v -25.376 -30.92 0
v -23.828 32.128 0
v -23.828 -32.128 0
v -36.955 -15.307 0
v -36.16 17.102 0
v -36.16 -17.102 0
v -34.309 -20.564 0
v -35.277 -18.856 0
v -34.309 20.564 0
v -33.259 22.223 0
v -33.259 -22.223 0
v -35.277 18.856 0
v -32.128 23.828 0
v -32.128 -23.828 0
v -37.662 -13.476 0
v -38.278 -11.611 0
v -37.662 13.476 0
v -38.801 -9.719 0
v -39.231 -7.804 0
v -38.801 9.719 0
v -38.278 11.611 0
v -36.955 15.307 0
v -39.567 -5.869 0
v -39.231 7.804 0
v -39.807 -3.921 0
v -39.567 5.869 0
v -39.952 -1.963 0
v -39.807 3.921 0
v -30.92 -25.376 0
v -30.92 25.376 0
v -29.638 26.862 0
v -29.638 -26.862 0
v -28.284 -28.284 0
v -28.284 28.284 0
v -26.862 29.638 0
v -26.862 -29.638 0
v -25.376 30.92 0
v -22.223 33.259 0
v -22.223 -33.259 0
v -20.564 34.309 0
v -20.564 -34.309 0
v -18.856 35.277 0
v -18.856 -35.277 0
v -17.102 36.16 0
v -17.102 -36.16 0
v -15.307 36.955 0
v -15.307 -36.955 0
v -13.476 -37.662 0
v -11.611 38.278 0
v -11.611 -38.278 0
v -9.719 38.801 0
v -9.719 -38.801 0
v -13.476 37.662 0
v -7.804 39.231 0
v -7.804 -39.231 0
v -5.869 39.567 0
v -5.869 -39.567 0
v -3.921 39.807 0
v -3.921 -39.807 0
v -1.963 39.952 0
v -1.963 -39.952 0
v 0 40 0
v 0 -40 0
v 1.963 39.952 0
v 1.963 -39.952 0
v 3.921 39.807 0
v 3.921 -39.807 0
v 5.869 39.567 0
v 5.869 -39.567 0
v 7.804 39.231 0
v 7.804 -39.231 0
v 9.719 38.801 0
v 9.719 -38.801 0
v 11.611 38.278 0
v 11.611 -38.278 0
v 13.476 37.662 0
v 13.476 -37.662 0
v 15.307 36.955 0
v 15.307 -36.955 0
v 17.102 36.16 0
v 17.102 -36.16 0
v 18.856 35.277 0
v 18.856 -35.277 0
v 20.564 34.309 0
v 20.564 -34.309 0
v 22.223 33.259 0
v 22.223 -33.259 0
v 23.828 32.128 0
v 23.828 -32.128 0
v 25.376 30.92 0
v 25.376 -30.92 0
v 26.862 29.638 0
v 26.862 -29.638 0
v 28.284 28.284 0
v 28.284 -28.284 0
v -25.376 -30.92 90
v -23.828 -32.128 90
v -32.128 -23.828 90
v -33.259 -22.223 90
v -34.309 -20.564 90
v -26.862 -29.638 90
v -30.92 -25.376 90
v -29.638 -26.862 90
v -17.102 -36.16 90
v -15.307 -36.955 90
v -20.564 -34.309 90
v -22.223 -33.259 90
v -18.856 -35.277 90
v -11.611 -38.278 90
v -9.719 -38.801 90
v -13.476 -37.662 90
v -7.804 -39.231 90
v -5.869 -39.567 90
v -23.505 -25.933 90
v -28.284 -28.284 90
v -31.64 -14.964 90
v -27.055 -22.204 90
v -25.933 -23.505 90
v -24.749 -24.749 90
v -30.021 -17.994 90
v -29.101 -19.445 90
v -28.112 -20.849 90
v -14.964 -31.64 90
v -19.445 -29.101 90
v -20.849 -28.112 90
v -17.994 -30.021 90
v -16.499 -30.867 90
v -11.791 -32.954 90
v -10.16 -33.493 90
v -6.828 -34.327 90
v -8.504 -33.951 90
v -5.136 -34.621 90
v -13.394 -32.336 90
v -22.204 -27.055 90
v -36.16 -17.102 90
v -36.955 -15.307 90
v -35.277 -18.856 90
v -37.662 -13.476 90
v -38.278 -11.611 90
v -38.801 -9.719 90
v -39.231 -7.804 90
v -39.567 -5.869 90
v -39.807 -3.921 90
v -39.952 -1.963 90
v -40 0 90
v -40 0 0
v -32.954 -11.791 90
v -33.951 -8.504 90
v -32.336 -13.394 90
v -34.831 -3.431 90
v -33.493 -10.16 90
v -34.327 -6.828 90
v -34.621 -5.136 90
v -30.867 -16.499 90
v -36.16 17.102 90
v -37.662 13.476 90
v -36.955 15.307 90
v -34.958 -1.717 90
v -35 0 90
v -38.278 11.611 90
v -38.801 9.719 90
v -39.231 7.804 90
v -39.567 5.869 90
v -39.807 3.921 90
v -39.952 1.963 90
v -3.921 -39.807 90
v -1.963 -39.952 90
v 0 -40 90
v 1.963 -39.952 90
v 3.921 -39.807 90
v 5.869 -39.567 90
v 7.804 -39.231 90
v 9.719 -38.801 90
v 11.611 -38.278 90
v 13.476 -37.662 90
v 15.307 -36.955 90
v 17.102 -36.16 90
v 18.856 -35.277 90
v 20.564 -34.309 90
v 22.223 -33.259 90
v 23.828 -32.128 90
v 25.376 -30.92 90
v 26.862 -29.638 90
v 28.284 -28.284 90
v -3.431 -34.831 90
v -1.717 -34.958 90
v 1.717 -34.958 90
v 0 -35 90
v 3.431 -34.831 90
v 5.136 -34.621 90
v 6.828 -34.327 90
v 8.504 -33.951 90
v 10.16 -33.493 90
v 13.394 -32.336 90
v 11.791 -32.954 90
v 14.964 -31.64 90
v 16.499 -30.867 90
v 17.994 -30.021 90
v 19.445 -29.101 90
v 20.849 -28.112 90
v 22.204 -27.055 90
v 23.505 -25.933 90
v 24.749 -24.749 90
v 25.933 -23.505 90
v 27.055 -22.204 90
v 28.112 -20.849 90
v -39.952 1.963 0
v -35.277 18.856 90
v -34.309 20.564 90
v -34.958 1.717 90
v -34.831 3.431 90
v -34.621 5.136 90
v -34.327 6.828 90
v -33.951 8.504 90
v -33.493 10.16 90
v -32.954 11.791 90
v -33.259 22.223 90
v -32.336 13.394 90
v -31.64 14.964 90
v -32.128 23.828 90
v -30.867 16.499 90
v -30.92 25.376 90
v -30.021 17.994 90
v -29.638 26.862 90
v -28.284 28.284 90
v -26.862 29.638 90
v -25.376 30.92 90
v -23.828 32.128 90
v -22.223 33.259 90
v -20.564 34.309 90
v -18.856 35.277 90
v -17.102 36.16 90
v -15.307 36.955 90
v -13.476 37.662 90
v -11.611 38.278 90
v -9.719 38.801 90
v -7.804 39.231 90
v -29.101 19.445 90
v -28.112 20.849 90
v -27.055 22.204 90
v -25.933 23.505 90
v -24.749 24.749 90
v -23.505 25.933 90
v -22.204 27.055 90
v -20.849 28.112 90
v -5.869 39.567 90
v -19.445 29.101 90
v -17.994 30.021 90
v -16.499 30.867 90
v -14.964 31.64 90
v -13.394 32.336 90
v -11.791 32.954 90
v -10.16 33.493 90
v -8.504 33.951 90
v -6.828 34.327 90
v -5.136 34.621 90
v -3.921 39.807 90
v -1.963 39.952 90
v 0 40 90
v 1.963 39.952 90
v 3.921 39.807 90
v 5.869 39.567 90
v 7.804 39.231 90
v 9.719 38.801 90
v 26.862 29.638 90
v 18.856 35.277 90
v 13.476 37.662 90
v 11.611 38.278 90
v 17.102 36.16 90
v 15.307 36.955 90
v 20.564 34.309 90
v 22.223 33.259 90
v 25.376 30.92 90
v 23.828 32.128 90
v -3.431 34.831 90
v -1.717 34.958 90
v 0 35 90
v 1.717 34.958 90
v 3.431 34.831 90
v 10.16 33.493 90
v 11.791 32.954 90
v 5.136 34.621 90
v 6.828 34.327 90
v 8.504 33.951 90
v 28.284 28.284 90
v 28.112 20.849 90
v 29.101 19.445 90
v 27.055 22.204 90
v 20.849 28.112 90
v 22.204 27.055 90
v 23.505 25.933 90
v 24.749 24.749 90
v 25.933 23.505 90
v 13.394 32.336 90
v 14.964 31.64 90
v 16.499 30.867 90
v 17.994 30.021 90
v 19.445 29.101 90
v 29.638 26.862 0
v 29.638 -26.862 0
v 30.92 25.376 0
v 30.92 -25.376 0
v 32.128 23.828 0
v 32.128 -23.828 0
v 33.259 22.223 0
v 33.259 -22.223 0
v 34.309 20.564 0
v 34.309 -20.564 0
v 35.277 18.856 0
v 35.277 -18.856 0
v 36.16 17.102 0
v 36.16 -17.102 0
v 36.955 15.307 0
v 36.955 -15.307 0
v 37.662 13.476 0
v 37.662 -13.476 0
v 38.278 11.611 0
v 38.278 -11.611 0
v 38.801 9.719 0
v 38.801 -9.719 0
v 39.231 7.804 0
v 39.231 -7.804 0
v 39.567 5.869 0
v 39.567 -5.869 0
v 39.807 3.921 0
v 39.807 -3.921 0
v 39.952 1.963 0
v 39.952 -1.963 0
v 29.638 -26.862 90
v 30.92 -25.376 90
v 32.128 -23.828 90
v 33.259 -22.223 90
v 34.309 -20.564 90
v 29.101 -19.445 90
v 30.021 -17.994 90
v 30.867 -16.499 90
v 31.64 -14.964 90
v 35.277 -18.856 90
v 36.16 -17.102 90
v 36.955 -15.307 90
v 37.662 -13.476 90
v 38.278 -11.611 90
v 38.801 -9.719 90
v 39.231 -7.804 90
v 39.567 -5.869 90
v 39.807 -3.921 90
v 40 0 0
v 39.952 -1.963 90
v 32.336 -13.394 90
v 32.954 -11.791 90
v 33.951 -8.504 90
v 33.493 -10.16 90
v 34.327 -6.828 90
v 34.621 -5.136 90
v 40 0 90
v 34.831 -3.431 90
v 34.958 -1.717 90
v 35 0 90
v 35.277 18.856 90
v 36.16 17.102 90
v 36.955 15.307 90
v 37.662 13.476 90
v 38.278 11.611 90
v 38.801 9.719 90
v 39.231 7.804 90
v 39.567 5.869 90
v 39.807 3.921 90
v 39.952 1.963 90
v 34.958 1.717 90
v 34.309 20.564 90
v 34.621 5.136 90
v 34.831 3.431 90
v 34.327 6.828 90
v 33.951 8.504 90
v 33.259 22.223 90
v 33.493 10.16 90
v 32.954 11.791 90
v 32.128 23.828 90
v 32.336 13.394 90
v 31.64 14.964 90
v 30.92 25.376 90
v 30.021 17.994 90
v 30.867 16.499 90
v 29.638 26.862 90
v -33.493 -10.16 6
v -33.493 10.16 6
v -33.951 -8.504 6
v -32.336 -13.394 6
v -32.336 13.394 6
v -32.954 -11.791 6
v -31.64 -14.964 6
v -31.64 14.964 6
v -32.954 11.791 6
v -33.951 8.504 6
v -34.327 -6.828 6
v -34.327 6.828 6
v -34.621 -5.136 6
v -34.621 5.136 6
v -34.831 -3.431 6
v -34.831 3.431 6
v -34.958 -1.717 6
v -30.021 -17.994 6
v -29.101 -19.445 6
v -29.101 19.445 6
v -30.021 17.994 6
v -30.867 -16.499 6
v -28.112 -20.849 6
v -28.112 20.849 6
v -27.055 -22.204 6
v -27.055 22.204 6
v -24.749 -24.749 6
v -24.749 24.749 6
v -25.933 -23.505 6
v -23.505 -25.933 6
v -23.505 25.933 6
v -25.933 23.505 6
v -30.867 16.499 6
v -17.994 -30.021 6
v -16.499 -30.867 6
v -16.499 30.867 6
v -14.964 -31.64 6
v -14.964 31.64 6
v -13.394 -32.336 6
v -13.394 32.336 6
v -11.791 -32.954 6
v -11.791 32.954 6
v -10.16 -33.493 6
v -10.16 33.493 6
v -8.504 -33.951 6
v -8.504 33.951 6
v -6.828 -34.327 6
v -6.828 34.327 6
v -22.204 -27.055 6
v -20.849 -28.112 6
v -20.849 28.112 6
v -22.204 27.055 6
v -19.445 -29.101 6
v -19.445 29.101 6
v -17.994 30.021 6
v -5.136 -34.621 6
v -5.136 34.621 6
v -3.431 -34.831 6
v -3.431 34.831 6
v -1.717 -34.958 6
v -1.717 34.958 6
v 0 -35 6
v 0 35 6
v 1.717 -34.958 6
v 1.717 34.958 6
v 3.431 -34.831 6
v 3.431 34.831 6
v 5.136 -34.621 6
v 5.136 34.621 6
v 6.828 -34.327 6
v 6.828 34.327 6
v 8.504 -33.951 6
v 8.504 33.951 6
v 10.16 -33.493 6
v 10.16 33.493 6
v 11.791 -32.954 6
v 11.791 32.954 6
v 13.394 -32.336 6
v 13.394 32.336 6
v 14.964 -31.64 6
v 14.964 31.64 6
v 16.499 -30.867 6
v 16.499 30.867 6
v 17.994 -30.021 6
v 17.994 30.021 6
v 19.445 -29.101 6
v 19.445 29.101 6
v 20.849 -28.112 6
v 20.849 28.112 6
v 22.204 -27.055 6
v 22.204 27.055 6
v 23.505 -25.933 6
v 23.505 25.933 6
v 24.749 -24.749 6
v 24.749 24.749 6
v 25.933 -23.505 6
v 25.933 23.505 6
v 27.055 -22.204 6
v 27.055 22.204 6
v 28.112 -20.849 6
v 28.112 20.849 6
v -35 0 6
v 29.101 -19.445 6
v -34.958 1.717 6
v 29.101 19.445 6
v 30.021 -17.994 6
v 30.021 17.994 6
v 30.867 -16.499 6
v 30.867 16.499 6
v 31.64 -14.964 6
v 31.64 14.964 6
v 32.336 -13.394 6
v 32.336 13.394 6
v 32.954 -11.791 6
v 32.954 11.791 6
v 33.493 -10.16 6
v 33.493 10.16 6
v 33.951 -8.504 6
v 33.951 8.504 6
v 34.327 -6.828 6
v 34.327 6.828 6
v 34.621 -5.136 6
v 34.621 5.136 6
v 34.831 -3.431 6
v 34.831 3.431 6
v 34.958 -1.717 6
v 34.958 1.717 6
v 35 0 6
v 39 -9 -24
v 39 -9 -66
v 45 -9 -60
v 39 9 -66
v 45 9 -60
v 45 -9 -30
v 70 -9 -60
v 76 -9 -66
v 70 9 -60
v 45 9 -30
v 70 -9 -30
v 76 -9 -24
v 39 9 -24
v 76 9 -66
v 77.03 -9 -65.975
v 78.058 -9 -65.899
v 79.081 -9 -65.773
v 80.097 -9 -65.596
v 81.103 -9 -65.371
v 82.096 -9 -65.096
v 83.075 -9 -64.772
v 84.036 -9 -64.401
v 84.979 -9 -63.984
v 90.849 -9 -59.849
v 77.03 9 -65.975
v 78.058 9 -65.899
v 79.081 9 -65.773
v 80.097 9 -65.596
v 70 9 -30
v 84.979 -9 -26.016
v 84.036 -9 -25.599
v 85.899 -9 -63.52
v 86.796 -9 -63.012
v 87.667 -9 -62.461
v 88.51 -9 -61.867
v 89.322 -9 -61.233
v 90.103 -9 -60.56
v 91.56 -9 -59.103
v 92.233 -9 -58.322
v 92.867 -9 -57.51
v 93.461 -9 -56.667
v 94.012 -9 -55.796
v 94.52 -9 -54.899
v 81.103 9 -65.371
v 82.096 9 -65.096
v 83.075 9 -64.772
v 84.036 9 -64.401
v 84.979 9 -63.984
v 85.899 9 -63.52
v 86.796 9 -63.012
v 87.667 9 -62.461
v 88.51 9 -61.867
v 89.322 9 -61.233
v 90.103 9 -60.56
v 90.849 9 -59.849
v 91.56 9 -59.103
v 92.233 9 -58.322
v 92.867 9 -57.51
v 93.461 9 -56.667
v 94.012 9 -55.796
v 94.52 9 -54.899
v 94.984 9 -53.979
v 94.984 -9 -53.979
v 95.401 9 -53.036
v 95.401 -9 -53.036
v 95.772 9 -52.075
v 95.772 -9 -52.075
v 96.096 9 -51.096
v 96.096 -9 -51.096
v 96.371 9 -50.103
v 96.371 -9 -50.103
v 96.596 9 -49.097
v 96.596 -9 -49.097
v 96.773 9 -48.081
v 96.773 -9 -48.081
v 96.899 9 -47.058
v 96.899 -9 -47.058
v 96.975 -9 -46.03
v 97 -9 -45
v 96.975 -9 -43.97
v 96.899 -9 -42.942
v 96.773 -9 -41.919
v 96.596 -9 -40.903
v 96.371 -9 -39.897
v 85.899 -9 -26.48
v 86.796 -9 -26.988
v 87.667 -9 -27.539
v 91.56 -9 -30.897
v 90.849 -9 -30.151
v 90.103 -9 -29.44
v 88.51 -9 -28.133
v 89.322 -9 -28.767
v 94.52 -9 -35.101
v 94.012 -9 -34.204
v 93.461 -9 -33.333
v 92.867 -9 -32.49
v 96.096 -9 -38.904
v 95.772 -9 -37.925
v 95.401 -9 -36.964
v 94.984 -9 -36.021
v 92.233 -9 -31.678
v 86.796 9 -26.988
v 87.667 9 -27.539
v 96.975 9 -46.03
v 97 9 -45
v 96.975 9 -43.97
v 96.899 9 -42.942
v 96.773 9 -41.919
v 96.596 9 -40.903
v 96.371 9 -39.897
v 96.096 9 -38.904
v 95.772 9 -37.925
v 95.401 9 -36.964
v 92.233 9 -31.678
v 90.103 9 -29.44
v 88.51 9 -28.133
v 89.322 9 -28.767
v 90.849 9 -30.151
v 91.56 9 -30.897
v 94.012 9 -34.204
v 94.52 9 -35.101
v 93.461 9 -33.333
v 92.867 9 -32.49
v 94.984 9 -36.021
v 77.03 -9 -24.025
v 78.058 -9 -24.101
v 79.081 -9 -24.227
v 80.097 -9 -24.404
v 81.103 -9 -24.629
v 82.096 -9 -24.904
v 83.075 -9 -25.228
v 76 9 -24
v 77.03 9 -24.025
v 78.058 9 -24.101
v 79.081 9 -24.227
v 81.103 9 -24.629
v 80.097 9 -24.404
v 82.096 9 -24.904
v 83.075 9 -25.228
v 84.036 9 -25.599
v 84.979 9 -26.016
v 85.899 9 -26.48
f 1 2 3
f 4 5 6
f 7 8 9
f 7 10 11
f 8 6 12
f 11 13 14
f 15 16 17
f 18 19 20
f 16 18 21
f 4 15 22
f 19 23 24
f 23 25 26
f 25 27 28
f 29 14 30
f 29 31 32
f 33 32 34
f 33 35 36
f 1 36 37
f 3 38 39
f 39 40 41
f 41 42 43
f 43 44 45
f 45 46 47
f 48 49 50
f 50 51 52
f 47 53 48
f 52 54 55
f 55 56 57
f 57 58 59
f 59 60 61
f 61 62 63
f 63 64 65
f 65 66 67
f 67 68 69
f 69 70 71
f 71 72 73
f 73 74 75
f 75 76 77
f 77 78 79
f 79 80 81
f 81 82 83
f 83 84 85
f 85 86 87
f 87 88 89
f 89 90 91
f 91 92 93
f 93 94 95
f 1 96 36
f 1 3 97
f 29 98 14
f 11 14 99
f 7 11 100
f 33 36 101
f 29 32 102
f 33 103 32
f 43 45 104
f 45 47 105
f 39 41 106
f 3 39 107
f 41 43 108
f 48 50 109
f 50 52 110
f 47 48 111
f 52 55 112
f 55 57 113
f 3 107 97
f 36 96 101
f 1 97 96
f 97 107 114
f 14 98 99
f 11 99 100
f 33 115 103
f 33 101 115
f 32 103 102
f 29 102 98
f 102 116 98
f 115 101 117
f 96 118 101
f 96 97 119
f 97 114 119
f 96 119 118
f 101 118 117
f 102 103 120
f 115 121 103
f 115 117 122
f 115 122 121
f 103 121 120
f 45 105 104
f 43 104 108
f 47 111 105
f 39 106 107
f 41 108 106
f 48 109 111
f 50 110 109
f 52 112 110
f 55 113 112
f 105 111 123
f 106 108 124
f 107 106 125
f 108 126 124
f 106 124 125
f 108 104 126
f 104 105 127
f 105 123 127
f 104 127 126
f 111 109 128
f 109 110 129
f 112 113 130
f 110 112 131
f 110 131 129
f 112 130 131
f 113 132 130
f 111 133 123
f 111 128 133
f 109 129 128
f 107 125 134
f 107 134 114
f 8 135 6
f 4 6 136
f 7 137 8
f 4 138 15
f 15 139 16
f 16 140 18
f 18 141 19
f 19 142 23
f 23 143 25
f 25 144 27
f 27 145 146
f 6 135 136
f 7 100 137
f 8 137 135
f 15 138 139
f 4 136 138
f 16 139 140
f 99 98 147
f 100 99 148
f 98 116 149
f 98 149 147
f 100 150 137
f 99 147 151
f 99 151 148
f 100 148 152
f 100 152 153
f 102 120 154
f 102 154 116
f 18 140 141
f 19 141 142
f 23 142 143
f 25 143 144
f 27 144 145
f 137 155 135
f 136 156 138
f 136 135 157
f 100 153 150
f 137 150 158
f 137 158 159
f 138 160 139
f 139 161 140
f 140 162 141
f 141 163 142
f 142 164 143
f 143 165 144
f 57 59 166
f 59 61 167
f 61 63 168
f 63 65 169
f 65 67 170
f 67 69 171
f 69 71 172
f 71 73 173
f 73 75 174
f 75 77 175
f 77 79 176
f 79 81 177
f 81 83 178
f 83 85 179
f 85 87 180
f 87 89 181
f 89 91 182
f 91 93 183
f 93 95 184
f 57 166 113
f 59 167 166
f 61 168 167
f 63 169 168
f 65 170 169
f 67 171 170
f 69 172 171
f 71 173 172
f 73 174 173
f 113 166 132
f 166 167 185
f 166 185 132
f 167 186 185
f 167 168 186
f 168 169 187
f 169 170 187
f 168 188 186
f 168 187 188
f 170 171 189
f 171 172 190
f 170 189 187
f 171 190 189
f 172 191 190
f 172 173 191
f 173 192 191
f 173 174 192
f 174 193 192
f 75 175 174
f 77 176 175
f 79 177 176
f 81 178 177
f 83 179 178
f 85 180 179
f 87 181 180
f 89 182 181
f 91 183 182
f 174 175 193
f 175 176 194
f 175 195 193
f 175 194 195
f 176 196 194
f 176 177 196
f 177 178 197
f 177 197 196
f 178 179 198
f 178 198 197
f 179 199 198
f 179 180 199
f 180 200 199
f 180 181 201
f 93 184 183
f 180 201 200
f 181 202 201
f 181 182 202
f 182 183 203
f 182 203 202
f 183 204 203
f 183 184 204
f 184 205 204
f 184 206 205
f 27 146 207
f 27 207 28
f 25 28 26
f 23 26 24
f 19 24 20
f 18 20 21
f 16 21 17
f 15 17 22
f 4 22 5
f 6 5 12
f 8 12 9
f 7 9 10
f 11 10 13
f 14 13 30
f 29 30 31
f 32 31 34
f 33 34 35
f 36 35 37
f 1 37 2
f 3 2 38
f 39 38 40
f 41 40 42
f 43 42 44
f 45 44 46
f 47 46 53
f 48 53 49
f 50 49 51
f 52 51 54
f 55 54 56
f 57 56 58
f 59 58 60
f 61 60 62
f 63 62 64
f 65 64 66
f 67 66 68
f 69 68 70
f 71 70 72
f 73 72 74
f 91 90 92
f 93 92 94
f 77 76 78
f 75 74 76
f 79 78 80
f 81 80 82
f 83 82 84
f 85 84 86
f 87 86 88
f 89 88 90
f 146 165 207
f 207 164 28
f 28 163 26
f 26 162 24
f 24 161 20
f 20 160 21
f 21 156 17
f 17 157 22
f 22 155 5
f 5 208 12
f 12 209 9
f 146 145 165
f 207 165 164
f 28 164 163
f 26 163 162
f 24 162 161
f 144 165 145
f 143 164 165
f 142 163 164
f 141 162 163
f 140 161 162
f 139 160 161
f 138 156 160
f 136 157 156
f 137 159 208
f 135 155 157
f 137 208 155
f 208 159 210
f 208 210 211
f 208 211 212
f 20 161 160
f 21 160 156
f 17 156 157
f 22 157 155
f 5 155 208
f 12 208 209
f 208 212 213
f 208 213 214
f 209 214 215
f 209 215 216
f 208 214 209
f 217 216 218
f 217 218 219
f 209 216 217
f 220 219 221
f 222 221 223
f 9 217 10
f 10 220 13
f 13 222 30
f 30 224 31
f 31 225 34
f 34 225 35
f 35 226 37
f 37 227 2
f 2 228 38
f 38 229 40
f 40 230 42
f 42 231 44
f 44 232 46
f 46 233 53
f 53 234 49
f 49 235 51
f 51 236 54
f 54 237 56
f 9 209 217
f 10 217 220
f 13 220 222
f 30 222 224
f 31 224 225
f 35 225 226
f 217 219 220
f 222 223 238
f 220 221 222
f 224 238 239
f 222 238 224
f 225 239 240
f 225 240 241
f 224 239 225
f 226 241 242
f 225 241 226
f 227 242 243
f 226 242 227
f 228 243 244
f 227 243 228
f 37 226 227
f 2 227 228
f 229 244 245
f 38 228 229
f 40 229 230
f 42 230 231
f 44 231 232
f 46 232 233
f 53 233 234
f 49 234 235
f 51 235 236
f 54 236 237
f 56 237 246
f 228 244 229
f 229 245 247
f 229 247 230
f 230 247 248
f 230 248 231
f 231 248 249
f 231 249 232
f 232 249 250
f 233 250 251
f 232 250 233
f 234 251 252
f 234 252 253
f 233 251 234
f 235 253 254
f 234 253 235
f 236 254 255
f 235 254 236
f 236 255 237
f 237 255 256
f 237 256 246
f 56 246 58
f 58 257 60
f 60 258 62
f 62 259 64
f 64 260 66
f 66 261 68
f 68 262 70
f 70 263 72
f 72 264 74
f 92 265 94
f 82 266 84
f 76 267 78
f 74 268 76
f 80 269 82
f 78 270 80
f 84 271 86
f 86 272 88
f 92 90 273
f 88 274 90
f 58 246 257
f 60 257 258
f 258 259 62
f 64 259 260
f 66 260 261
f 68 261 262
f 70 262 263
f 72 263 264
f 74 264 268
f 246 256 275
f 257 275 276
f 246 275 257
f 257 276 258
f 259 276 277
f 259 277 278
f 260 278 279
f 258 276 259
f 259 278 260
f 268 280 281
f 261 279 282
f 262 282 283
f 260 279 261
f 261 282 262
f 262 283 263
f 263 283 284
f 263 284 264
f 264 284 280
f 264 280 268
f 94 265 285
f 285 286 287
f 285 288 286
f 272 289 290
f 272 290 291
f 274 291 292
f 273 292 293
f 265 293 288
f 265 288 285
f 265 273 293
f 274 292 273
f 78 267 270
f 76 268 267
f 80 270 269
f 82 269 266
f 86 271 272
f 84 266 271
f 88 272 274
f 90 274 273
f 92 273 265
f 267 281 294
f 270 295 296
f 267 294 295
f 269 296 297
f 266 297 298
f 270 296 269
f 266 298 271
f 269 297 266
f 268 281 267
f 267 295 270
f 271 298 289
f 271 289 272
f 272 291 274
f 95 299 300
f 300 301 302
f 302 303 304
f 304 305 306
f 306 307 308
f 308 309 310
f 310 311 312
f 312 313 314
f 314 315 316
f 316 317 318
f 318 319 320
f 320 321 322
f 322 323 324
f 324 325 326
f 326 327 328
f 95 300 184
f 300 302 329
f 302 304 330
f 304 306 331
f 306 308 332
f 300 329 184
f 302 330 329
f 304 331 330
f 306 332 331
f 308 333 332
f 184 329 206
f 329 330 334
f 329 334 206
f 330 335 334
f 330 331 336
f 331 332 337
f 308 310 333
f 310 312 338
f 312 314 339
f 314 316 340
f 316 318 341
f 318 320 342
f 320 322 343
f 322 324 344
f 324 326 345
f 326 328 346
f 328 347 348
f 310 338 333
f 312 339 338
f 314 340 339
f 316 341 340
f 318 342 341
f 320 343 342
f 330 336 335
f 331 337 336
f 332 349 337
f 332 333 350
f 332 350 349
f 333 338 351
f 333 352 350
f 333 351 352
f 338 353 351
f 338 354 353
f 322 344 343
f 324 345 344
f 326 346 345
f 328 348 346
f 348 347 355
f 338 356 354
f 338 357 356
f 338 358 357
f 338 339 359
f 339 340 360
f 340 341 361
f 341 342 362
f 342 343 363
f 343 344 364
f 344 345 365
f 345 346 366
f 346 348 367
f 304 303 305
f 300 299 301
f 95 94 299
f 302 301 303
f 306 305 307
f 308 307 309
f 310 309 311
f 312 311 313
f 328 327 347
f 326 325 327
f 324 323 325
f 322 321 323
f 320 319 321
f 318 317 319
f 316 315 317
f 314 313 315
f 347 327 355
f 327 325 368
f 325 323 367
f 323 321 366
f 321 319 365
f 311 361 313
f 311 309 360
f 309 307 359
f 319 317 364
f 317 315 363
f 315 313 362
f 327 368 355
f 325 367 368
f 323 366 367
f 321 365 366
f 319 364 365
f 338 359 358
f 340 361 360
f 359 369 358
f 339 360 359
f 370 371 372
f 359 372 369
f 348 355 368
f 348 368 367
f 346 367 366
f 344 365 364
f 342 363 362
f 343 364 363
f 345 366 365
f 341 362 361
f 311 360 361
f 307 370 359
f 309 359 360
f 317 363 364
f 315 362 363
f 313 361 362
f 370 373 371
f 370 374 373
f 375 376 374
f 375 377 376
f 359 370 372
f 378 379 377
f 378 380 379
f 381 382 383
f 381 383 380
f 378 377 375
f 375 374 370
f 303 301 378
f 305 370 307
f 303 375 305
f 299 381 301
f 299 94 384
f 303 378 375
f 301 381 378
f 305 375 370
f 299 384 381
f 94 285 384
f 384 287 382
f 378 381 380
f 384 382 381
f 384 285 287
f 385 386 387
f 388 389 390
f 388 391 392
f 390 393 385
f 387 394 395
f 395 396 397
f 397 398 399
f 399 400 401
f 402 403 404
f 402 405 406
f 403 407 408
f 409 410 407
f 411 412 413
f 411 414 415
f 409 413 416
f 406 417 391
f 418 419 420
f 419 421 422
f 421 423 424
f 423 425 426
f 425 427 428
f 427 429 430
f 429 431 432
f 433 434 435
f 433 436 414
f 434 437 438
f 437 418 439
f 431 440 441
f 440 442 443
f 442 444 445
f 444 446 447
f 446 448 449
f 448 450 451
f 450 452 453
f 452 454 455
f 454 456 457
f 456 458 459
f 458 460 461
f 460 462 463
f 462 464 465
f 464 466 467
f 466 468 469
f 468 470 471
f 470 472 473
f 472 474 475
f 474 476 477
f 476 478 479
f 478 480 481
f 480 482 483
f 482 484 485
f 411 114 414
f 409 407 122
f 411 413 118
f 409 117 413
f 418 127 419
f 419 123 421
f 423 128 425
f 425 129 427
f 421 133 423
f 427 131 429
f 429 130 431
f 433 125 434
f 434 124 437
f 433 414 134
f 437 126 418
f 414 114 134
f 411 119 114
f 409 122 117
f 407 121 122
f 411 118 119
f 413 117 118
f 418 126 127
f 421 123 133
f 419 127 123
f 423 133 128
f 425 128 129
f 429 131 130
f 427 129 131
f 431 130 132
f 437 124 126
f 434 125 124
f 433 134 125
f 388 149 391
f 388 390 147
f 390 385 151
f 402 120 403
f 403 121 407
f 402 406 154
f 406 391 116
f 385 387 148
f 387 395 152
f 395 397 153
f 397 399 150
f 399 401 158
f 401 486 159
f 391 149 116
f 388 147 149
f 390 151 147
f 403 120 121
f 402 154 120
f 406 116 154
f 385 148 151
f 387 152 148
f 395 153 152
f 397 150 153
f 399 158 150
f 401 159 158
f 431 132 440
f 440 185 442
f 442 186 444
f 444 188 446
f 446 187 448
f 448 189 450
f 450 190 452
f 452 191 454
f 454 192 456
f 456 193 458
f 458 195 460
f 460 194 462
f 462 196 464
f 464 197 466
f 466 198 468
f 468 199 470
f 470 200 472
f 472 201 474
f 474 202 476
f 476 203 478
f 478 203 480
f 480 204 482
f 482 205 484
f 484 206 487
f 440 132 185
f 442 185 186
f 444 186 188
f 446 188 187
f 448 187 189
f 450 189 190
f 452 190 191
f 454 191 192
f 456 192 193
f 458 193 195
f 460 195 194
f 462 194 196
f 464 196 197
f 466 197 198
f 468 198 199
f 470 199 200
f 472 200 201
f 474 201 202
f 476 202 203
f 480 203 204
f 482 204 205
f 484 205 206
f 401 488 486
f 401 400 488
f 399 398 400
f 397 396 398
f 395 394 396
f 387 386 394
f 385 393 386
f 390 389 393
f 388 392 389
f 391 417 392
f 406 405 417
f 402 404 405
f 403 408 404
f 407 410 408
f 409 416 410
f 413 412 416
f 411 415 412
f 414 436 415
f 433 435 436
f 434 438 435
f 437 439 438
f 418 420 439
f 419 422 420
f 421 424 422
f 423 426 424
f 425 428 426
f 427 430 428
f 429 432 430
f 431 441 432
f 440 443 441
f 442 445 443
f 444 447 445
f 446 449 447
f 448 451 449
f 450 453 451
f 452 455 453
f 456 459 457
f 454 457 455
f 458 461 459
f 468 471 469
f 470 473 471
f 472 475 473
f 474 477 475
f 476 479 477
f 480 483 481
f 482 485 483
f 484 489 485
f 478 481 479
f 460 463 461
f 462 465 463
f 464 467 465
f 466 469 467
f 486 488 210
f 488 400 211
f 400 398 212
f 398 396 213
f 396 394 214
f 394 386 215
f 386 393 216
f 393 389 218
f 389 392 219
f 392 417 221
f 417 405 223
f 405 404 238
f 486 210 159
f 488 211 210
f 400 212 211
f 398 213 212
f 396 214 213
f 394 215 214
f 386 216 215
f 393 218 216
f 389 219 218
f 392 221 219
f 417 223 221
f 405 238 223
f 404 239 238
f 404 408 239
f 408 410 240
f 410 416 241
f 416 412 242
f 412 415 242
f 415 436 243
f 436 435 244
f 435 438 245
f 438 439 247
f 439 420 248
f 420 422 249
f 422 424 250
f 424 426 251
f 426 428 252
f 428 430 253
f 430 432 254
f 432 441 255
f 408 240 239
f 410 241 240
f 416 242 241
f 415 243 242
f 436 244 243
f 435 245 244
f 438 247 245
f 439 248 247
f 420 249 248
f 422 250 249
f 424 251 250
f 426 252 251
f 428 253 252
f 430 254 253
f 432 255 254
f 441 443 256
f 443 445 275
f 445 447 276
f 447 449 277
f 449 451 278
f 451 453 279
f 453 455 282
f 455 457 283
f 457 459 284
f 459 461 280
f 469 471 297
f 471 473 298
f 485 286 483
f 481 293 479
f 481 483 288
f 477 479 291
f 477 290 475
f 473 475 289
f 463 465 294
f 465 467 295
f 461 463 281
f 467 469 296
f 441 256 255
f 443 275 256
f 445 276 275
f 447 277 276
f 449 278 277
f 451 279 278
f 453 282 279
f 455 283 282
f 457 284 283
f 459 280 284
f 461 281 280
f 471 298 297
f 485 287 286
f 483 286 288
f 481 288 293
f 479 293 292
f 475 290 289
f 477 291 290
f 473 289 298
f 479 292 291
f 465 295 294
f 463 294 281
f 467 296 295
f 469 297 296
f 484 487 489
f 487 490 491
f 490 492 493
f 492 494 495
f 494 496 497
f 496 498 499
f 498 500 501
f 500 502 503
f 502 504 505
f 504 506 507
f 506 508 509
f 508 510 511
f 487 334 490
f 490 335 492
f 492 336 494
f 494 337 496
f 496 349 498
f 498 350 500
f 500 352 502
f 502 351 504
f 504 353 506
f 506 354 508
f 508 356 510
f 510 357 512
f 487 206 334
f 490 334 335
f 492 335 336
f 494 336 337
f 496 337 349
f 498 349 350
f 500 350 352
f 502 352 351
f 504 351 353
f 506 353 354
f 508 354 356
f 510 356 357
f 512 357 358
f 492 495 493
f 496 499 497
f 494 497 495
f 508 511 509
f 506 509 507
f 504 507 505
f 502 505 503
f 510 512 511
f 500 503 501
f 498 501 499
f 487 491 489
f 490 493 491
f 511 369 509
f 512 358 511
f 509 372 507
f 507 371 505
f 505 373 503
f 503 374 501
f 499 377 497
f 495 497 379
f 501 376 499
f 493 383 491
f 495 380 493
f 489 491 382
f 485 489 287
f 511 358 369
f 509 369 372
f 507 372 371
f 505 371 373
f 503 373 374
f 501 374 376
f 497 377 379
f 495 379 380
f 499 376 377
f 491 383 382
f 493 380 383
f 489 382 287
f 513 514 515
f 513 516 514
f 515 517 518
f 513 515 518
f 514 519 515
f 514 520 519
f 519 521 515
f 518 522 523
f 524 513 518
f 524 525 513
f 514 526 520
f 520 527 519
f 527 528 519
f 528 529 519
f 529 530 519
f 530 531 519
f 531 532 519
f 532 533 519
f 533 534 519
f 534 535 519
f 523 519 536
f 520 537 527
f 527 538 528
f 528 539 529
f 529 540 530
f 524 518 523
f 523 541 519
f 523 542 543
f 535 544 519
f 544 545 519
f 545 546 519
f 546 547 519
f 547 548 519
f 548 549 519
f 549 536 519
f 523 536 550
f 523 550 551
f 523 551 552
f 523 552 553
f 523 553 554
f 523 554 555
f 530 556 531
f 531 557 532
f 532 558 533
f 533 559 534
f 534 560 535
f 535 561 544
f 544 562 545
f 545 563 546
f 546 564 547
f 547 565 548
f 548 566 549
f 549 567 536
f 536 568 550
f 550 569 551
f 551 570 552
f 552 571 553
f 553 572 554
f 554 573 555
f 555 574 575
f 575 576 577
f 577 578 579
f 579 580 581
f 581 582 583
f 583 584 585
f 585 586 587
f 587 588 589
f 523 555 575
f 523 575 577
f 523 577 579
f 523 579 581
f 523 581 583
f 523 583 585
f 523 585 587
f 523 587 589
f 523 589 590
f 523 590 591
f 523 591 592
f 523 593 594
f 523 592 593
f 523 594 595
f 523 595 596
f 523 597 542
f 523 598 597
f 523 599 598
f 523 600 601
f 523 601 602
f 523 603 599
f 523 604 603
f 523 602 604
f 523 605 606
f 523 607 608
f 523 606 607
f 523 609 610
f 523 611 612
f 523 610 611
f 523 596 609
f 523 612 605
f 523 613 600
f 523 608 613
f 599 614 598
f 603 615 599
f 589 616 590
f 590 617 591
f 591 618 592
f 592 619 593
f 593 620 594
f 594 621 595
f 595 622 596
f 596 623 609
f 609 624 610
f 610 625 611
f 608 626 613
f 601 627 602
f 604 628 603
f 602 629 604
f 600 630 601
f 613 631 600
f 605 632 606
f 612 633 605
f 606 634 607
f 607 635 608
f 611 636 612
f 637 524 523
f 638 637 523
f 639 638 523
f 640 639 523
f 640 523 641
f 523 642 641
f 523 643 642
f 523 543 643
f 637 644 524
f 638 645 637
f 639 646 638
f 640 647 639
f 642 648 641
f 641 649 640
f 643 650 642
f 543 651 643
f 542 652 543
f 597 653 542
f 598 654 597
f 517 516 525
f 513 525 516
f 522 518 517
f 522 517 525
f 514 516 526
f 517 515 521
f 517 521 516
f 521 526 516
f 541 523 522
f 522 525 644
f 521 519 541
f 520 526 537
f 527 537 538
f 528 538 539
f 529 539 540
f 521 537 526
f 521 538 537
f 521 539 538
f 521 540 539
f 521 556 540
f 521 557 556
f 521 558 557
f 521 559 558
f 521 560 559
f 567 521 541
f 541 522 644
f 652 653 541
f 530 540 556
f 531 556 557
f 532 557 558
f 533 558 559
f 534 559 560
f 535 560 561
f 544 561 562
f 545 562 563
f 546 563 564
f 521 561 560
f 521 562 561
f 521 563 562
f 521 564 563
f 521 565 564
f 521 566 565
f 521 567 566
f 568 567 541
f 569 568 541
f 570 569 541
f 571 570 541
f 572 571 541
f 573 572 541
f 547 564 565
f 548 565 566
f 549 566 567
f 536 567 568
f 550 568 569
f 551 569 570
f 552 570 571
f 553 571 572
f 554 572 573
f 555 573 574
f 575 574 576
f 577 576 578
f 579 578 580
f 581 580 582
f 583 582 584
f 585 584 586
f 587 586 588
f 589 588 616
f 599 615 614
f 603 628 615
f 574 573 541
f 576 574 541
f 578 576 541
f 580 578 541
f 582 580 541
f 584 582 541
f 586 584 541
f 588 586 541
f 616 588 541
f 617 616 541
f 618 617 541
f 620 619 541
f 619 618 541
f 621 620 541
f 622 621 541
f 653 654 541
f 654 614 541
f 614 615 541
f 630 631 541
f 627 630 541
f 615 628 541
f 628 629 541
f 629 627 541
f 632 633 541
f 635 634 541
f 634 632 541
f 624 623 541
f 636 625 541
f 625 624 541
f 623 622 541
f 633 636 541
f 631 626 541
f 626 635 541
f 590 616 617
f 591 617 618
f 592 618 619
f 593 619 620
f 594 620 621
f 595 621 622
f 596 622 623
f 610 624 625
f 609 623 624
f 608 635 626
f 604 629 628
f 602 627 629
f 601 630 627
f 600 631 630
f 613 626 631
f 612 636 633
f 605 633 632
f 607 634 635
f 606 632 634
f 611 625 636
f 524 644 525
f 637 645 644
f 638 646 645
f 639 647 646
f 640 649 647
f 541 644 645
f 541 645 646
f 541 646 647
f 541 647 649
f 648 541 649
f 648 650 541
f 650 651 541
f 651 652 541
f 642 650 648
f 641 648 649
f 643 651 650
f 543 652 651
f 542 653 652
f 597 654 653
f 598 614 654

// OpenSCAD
// Parameters
$fn = 128;

// Mug dimensions
R_outer = 40;      // Outer radius (80mm diameter)
R_inner = 35;      // Inner radius (70mm diameter)
H = 90;            // Height
B = 6;             // Bottom thickness

// Handle parameters
t = 6;             // Handle wall thickness around inner void
inner_w = 25;      // Inner void width (X direction)
inner_h = 30;      // Inner void height (Z direction)
handle_y_thick = 18; // Handle thickness along Y
eps = 1.0;         // Overlap into mug for solid union
zc = H/2;          // Z center of handle
x0 = R_outer + t - eps; // Left edge (X) of inner void

module mug_body() {
  difference() {
    // Outer shell
    cylinder(h=H, r=R_outer);
    // Inner cavity (leaves bottom thickness B)
    translate([0,0,B]) cylinder(h=H-B, r=R_inner);
  }
}

module handle() {
  // Build 2D D-shaped profile in XY plane (Y corresponds to Z),
  // then extrude along Z and rotate to make extrusion along Y.
  rotate([-90,0,0])
    linear_extrude(height=handle_y_thick, center=true, convexity=10)
      difference() {
        // Outer D shape: rectangle + semicircle cap
        union() {
          translate([x0 - t, zc - (inner_h/2 + t)])
            square([inner_w + 2*t, inner_h + 2*t], center=false);
          translate([x0 + inner_w + t, zc])
            circle(r=inner_h/2 + t);
        }
        // Inner rectangular void (25 x 30)
        translate([x0, zc - inner_h/2])
          square([inner_w, inner_h], center=false);
      }
}

union() {
  mug_body();
  handle(); // Positioned on +X side by construction
}
